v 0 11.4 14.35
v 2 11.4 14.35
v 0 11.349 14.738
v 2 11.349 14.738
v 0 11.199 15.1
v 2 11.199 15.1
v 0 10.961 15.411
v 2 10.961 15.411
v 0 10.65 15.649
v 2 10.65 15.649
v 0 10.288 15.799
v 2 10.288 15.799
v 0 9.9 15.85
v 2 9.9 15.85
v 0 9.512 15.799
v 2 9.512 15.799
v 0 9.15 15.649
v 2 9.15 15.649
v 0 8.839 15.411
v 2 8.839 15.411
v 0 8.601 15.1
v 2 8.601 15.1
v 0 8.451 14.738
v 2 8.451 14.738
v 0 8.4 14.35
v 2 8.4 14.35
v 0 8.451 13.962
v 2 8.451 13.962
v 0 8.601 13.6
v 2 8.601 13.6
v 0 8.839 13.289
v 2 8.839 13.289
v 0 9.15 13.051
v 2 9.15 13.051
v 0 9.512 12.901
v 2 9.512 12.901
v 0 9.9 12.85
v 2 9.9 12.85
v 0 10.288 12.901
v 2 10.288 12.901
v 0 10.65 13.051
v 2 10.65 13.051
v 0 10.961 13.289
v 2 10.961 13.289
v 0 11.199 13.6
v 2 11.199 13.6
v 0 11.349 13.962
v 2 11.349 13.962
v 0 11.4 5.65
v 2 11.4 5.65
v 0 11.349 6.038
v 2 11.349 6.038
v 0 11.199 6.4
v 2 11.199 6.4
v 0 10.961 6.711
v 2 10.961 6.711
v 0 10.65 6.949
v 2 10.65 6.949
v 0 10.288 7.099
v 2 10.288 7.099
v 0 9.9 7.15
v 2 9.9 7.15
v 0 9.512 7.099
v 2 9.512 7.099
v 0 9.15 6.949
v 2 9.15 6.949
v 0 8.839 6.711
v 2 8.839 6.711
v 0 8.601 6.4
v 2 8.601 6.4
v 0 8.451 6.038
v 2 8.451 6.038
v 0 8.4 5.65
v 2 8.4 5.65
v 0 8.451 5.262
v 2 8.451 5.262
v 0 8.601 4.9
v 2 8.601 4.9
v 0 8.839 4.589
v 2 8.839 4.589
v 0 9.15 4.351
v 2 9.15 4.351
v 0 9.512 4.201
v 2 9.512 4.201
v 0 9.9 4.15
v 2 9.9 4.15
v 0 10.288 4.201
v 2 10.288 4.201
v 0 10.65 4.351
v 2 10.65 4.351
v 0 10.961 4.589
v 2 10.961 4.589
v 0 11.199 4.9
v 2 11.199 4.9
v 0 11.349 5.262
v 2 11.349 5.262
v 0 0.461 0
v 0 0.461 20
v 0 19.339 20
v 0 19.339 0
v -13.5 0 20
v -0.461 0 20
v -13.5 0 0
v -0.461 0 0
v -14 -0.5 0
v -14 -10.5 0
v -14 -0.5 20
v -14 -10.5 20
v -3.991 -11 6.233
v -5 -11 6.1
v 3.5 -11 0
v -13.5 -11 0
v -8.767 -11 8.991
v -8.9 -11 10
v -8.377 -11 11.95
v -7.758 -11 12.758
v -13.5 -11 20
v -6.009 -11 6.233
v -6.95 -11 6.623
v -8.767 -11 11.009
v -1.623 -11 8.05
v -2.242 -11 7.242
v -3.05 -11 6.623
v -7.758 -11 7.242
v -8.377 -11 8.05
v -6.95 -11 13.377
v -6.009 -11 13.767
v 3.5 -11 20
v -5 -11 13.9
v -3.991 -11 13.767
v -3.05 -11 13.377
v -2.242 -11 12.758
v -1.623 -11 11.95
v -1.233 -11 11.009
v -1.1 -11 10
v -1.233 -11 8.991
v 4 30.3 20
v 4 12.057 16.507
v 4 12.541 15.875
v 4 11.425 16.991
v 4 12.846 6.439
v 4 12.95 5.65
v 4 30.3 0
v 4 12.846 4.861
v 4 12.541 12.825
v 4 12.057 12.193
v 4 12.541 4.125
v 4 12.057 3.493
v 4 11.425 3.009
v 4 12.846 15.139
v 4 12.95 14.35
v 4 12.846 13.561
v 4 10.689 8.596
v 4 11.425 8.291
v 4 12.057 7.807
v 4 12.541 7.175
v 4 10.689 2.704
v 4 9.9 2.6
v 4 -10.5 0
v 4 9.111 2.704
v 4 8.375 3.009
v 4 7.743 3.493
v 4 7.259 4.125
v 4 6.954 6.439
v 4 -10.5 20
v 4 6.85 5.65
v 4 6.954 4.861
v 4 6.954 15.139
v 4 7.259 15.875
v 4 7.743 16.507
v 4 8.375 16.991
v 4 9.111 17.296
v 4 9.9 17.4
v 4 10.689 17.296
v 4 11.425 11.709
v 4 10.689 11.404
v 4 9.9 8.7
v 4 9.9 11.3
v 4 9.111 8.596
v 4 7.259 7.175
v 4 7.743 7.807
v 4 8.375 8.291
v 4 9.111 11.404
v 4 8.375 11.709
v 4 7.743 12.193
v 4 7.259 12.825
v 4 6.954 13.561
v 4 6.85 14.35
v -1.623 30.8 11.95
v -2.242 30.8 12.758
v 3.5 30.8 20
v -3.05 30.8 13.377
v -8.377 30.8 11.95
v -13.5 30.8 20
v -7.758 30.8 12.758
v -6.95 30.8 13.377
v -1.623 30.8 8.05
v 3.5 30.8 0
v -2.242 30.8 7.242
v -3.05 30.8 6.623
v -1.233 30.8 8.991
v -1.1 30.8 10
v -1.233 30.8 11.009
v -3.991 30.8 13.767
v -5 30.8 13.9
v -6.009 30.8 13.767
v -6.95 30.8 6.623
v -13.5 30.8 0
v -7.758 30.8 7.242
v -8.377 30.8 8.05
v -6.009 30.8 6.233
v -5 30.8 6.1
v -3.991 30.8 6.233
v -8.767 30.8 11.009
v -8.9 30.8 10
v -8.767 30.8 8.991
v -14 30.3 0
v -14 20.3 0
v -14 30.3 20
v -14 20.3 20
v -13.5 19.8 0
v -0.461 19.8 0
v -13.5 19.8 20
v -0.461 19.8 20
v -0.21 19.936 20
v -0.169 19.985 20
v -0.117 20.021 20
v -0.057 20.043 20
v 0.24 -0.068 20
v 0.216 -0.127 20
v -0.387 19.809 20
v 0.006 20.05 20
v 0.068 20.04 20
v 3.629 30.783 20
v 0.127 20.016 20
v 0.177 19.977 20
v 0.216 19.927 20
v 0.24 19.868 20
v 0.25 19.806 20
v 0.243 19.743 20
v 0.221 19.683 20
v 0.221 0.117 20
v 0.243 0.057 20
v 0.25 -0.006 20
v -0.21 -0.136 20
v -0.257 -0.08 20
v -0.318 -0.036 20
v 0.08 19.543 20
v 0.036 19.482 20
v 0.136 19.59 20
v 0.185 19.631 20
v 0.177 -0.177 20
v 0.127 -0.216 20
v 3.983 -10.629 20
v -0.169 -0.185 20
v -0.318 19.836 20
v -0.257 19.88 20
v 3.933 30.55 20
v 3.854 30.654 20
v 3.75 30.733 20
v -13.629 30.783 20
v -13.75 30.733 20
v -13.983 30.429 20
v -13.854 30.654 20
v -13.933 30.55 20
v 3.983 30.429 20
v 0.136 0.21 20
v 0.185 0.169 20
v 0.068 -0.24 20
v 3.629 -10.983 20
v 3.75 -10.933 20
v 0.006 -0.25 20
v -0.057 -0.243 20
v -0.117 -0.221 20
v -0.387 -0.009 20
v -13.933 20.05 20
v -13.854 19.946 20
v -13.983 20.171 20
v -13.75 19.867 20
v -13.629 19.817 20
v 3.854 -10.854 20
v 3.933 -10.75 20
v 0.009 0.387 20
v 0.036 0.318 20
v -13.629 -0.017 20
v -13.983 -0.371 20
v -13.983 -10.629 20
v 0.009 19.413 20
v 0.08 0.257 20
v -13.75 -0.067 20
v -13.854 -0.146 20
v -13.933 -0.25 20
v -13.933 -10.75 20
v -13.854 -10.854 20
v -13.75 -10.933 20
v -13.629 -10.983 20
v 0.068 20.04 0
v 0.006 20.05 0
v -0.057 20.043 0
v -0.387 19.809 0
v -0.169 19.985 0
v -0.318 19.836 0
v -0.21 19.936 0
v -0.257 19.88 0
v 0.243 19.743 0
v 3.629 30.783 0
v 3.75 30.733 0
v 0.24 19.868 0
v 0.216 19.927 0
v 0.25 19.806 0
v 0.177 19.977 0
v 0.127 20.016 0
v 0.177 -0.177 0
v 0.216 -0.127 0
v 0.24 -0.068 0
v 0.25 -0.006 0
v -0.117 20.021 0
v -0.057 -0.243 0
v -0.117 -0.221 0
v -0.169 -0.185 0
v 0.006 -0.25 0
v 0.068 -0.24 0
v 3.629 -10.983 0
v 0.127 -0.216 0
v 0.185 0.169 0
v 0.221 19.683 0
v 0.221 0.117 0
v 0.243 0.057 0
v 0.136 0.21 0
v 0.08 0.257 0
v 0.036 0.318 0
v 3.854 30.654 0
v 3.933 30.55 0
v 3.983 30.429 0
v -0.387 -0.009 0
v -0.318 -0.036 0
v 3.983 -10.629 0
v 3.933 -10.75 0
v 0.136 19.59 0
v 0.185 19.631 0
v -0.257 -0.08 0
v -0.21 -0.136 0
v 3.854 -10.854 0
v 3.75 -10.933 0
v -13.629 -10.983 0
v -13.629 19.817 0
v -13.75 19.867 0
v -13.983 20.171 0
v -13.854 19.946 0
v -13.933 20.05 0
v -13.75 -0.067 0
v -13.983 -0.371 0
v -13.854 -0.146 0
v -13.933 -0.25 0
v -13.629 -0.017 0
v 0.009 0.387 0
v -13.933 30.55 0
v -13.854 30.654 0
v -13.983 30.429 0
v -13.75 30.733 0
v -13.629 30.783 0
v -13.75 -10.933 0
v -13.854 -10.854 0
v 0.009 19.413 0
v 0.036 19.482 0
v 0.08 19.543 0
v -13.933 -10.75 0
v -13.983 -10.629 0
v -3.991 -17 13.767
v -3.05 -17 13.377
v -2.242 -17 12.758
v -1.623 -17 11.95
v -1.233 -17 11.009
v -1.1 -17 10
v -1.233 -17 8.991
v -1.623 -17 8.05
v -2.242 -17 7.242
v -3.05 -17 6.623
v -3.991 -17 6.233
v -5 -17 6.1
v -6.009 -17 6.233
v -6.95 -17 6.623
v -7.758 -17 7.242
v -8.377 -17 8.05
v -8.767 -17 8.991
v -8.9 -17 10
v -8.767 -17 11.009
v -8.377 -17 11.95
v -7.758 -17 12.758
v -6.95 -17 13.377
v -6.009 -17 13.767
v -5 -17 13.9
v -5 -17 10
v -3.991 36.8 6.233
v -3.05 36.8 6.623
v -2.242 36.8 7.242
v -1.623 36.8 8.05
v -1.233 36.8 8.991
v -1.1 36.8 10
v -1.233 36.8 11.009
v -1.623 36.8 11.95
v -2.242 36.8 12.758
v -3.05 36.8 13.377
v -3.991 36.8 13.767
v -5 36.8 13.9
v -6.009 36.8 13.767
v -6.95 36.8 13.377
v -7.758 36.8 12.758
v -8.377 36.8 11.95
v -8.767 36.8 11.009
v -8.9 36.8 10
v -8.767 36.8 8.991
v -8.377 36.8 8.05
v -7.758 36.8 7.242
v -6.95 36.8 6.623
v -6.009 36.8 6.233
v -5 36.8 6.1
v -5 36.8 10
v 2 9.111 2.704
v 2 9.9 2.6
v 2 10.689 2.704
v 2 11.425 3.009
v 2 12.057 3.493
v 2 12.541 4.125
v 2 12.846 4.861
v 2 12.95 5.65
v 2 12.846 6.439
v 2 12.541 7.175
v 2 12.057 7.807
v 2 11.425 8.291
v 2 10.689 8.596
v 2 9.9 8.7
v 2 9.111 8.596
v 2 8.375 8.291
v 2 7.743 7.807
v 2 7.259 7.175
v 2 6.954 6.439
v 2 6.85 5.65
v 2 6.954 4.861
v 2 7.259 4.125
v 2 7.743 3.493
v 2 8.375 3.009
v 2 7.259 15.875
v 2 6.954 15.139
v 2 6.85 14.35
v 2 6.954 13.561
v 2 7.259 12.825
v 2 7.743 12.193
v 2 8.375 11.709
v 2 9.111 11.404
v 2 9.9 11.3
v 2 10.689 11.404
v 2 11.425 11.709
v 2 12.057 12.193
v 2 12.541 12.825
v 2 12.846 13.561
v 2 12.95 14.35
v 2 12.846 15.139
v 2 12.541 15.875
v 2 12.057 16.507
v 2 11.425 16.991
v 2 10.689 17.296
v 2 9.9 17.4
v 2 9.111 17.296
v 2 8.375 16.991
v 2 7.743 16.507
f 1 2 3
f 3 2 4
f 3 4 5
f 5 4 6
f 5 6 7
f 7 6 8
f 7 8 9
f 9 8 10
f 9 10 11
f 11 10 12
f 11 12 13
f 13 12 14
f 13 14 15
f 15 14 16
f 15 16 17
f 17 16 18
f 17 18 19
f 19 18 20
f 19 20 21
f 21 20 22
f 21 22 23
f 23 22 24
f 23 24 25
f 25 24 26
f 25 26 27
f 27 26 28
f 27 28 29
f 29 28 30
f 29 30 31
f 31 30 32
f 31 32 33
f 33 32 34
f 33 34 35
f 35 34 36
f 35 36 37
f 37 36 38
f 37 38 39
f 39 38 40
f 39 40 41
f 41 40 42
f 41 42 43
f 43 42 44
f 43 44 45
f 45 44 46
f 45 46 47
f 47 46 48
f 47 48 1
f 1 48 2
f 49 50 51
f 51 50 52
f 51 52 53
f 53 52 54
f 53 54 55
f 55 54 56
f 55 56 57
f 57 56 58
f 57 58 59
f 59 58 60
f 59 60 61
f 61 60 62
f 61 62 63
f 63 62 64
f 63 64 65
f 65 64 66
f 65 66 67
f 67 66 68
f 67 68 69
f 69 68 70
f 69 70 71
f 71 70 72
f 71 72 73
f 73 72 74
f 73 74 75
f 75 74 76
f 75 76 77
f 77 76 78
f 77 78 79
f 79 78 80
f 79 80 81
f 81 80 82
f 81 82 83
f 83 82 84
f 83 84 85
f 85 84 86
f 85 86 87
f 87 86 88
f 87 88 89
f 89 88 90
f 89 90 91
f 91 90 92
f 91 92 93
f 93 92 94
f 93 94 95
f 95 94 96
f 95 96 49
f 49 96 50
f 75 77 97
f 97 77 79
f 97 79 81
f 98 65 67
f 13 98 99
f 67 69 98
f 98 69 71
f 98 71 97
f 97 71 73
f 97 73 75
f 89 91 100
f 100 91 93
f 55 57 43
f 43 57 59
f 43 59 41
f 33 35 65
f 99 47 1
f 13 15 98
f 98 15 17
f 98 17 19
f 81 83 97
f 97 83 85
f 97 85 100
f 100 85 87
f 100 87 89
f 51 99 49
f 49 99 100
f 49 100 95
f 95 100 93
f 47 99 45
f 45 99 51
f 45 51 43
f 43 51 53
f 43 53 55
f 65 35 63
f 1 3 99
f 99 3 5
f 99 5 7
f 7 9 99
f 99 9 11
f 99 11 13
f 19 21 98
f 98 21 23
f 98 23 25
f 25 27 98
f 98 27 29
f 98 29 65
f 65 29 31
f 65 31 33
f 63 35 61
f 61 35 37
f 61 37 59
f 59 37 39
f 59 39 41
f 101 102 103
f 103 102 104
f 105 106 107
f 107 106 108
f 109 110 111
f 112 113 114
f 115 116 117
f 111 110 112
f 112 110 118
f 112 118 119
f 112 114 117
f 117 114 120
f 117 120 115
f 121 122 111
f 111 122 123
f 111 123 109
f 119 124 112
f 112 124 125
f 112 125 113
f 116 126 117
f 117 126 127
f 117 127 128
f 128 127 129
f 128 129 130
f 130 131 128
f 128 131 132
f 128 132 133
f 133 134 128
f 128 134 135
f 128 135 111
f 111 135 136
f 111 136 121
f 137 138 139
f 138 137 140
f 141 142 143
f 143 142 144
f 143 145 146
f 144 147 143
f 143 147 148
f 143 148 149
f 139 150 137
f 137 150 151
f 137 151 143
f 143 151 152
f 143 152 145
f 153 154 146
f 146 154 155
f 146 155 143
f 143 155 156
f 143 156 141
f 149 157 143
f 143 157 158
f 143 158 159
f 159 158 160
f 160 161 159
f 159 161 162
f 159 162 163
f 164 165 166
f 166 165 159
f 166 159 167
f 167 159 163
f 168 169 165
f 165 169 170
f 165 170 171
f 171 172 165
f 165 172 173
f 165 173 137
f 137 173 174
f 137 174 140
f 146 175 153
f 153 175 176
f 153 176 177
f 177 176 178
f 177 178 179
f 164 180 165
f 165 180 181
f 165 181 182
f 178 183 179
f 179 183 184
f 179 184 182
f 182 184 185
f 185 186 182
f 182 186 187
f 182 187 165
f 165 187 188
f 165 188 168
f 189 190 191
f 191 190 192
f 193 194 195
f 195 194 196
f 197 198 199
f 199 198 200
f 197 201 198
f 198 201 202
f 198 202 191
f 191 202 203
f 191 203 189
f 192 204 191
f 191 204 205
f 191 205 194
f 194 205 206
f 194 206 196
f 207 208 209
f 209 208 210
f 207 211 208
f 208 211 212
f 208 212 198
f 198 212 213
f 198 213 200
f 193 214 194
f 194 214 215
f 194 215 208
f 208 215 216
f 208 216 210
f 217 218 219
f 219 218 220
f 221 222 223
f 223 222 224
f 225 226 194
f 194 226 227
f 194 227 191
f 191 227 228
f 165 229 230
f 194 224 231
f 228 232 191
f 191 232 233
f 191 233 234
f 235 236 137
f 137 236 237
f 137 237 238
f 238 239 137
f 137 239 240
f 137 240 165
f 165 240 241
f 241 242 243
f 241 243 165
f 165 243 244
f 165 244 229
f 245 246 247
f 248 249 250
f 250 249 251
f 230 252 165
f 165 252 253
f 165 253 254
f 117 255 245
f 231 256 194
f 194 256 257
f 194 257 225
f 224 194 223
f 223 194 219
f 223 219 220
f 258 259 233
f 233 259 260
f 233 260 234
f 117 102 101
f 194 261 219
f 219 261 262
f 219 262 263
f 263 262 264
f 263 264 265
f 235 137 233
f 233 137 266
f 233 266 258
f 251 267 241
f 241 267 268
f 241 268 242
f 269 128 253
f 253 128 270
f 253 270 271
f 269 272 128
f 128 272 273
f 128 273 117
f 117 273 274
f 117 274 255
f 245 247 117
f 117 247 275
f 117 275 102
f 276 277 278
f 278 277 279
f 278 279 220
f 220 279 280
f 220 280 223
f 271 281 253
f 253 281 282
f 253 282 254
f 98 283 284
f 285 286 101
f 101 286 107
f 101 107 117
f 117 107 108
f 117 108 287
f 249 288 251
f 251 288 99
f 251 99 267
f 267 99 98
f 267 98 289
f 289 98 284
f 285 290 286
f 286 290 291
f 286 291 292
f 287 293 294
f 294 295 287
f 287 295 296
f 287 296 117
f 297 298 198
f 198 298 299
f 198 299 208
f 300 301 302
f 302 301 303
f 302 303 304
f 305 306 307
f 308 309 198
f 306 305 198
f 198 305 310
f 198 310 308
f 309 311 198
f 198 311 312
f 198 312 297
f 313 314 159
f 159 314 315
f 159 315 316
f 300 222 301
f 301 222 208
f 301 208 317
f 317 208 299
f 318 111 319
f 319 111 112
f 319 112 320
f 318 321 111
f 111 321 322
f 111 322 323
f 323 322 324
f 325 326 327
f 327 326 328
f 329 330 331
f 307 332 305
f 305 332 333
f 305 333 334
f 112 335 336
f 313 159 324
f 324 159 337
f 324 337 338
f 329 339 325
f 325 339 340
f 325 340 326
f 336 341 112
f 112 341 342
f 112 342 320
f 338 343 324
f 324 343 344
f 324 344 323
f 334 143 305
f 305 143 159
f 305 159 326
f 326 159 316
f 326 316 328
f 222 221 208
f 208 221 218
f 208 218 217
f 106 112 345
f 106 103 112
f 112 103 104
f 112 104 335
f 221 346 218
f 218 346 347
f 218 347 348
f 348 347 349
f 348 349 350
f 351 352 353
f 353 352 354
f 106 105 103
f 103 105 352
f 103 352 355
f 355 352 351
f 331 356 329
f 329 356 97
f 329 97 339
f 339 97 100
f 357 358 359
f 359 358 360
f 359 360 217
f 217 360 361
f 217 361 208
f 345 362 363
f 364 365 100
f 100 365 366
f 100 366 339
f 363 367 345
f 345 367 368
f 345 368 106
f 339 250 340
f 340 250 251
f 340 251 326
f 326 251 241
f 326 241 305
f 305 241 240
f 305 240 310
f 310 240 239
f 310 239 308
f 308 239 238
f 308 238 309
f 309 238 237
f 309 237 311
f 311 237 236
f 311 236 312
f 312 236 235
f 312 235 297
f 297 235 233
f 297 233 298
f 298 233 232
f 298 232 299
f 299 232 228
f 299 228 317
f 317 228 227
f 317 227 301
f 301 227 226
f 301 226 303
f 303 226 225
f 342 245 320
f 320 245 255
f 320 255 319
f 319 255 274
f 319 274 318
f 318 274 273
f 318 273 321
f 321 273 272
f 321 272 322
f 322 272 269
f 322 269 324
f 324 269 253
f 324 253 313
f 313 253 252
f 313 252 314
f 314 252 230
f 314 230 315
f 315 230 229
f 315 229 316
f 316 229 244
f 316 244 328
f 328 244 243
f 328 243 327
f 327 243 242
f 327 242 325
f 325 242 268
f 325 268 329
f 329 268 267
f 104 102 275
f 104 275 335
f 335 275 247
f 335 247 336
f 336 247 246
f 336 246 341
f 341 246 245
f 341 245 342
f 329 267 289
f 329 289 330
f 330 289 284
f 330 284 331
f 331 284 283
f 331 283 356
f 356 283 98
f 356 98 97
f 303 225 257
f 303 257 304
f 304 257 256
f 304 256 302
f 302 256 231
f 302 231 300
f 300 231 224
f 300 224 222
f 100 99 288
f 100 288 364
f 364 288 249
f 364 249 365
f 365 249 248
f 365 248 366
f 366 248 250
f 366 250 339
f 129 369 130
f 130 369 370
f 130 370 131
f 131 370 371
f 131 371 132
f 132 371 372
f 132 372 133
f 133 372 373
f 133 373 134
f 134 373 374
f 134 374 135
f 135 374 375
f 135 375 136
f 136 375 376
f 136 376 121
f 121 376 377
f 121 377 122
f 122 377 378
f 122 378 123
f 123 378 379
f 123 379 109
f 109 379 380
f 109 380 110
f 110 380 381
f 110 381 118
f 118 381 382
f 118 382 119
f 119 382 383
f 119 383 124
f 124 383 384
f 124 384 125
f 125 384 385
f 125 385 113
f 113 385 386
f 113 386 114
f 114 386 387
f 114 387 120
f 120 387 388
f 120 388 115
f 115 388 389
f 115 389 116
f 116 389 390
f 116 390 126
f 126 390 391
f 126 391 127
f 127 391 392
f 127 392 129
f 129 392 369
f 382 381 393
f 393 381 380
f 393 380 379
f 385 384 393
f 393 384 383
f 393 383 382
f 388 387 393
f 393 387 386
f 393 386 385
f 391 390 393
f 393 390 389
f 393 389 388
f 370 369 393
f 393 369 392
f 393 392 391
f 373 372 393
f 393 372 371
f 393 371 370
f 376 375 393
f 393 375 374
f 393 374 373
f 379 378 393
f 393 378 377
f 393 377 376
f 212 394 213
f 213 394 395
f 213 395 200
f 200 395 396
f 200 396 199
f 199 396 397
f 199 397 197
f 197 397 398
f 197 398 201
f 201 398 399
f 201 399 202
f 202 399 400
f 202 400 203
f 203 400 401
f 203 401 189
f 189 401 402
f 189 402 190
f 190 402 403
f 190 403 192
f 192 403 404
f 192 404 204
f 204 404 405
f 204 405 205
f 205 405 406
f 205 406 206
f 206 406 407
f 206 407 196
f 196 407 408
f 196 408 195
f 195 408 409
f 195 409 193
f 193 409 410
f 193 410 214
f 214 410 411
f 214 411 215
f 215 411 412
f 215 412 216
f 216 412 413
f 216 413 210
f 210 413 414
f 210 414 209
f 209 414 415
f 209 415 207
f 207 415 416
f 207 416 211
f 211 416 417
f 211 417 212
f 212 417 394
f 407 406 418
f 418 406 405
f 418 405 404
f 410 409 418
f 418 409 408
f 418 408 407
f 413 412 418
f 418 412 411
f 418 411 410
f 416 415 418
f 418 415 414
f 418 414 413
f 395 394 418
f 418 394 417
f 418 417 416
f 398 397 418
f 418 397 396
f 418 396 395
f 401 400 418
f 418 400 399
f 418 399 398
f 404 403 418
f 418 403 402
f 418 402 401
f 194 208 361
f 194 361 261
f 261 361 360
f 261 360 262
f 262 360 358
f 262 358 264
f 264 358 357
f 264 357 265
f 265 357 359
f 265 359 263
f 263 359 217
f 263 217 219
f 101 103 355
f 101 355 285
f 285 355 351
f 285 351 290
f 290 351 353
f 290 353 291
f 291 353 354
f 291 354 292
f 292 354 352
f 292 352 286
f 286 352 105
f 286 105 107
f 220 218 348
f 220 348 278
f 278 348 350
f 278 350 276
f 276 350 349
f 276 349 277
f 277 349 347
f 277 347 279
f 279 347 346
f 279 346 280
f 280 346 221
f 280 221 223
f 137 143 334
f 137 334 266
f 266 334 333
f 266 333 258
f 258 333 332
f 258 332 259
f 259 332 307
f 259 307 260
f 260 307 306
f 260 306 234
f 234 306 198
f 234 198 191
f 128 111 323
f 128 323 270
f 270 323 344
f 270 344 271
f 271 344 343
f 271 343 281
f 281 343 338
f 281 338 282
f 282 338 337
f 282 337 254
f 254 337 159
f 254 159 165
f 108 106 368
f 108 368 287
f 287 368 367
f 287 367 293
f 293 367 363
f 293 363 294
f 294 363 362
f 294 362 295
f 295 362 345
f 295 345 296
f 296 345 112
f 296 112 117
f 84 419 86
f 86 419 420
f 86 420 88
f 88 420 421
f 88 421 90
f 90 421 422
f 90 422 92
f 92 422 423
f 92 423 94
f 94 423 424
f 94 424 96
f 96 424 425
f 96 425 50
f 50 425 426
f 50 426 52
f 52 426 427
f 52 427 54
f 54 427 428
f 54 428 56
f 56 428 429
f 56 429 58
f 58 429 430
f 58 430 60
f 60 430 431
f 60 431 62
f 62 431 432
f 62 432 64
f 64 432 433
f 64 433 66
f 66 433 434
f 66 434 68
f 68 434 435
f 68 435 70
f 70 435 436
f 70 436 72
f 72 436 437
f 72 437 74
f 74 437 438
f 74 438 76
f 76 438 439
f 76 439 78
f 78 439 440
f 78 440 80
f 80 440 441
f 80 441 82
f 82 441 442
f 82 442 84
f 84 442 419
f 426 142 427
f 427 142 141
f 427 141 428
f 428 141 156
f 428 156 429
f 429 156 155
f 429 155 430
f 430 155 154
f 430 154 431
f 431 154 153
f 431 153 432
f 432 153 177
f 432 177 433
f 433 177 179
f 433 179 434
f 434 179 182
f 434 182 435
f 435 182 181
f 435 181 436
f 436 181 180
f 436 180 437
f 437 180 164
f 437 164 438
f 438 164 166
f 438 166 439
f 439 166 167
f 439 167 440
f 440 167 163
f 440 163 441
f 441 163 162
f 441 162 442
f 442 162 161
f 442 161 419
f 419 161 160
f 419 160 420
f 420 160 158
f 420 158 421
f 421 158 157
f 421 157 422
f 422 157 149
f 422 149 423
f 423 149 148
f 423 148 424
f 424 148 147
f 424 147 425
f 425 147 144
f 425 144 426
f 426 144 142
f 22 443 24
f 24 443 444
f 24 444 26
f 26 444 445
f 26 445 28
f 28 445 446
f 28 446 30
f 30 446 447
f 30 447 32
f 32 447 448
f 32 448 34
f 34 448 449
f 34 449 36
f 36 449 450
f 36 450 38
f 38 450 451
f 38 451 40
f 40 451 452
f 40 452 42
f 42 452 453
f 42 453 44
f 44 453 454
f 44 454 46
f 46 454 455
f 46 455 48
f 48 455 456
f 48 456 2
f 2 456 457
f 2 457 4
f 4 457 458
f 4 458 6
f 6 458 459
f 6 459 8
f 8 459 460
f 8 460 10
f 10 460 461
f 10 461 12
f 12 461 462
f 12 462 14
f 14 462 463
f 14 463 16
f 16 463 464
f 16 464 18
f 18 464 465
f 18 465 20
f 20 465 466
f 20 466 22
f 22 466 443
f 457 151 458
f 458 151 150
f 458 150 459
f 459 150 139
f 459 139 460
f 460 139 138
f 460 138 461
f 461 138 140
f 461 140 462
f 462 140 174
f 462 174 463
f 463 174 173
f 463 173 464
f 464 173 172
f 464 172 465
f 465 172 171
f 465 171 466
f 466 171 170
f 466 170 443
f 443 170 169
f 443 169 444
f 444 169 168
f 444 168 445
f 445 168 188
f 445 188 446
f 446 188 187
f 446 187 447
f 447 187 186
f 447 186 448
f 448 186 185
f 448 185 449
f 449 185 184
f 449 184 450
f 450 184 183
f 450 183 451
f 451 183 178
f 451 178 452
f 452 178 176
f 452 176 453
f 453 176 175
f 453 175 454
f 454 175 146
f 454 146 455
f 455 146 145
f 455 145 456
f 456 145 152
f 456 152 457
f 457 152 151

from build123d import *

# Parameters (mm, degrees)
BOSS_EXTRUDE1_DEPTH = 20
CUT_EXTRUDE3_REACH  = 41.302
SKETCH5_R           = 0.25
CUT_EXTRUDE4_REACH  = 42.898
SKETCH3_R           = 1.5
FILLET3_R           = 0.3
SKETCH12_R          = 3.9
BOSS_EXTRUDE3_DEPTH = 6
BOSS_EXTRUDE4_START = 6
SKETCH13_R          = 3.9
BOSS_EXTRUDE4_DEPTH = 6
FILLET4_R           = 0.5
SKETCH14_R          = 3.05
CUT_EXTRUDE5_DEPTH  = 2


with BuildPart() as part:
    # Sketch1 → Boss-Extrude1 (new body)
    with BuildSketch(Plane.XY):
        Polygon((0, 0), (-14, 0), (-14, -11), (4, -11), (4, 30.8), (-14, 30.8), (-14, 19.8), (0, 19.8), align=None)
    extrude(amount=BOSS_EXTRUDE1_DEPTH)

    # Sketch5 → Cut-Extrude3 (cut, up to next)
    with BuildSketch(Plane.XY.offset(20), mode=Mode.PRIVATE) as cut_extrude3_sk1:
        Circle(SKETCH5_R)
    cut_extrude3_tool1 = extrude(cut_extrude3_sk1.sketch, amount=-CUT_EXTRUDE3_REACH, mode=Mode.PRIVATE) & part.part
    # Sketch5 → Cut-Extrude3 (cut, up to next)
    with BuildSketch(Plane.XY.offset(20), mode=Mode.PRIVATE) as cut_extrude3_sk2:
        with Locations((0, 19.8)):
            Circle(SKETCH5_R)
    cut_extrude3_tool2 = extrude(cut_extrude3_sk2.sketch, amount=-CUT_EXTRUDE3_REACH, mode=Mode.PRIVATE) & part.part
    add(cut_extrude3_tool1.solids().sort_by_distance((0, 0, 20))[0], mode=Mode.SUBTRACT)
    add(cut_extrude3_tool2.solids().sort_by_distance((0, 19.8, 20))[0], mode=Mode.SUBTRACT)

    # Sketch3 → Cut-Extrude4 (cut, up to next)
    with BuildSketch(Plane(origin=(4, 0, 0), x_dir=(0, 0, -1), z_dir=(1, 0, 0)), mode=Mode.PRIVATE) as cut_extrude4_sk1:
        with Locations(Location((-5.65, 9.9, 0), (0, 0, 90))):
            Circle(SKETCH3_R)
    cut_extrude4_tool1 = extrude(cut_extrude4_sk1.sketch, amount=-CUT_EXTRUDE4_REACH, mode=Mode.PRIVATE) & part.part
    # Sketch3 → Cut-Extrude4 (cut, up to next)
    with BuildSketch(Plane(origin=(4, 0, 0), x_dir=(0, 0, -1), z_dir=(1, 0, 0)), mode=Mode.PRIVATE) as cut_extrude4_sk2:
        with Locations(Location((-14.35, 9.9, 0), (0, 0, 90))):
            Circle(SKETCH3_R)
    cut_extrude4_tool2 = extrude(cut_extrude4_sk2.sketch, amount=-CUT_EXTRUDE4_REACH, mode=Mode.PRIVATE) & part.part
    add(cut_extrude4_tool1.solids().sort_by_distance((4, 9.9, 5.65))[0], mode=Mode.SUBTRACT)
    add(cut_extrude4_tool2.solids().sort_by_distance((4, 9.9, 14.35))[0], mode=Mode.SUBTRACT)

    # Fillet3
    fillet3_edges = [part.edges().sort_by_distance(p)[0] for p in [
        (0, 0.25, 10),
        (-0.25, 0, 10),
        (0, 19.55, 10),
        (-0.25, 19.8, 10),
    ]]
    fillet(fillet3_edges, radius=FILLET3_R)

    # Sketch12 → Boss-Extrude3 (add)
    with BuildSketch(Plane.XZ.offset(11)):
        with Locations(Location((-5, 10, 0), (0, 0, 270))):
            Circle(SKETCH12_R)
    extrude(amount=BOSS_EXTRUDE3_DEPTH)

    # Sketch13 → Boss-Extrude4 (add)
    with BuildSketch(Plane(origin=(0, 30.8, 0), x_dir=(1, 0, 0), z_dir=(0, 1, 0)).offset(BOSS_EXTRUDE4_START)):
        with Locations(Location((-5, -10, 0), (0, 0, 90))):
            Circle(SKETCH13_R)
    extrude(amount=-BOSS_EXTRUDE4_DEPTH)

    # Fillet4
    fillet4_edges = [part.edges().sort_by_distance(p)[0] for p in [
        (-14, 19.8, 10),
        (-14, 30.8, 10),
        (4, 30.8, 10),
        (4, -11, 10),
        (-14, -11, 10),
        (-14, 0, 10),
    ]]
    fillet(fillet4_edges, radius=FILLET4_R)

    # Sketch14 → Cut-Extrude5 (cut)
    with BuildSketch(Plane(origin=(4, 0, 0), x_dir=(0, 0, -1), z_dir=(1, 0, 0))):
        with Locations(Location((-14.35, 9.9, 0), (0, 0, 90))):
            Circle(SKETCH14_R)
        with Locations(Location((-5.65, 9.9, 0), (0, 0, 90))):
            Circle(SKETCH14_R)
    extrude(amount=-CUT_EXTRUDE5_DEPTH, mode=Mode.SUBTRACT)


solid = part.part
